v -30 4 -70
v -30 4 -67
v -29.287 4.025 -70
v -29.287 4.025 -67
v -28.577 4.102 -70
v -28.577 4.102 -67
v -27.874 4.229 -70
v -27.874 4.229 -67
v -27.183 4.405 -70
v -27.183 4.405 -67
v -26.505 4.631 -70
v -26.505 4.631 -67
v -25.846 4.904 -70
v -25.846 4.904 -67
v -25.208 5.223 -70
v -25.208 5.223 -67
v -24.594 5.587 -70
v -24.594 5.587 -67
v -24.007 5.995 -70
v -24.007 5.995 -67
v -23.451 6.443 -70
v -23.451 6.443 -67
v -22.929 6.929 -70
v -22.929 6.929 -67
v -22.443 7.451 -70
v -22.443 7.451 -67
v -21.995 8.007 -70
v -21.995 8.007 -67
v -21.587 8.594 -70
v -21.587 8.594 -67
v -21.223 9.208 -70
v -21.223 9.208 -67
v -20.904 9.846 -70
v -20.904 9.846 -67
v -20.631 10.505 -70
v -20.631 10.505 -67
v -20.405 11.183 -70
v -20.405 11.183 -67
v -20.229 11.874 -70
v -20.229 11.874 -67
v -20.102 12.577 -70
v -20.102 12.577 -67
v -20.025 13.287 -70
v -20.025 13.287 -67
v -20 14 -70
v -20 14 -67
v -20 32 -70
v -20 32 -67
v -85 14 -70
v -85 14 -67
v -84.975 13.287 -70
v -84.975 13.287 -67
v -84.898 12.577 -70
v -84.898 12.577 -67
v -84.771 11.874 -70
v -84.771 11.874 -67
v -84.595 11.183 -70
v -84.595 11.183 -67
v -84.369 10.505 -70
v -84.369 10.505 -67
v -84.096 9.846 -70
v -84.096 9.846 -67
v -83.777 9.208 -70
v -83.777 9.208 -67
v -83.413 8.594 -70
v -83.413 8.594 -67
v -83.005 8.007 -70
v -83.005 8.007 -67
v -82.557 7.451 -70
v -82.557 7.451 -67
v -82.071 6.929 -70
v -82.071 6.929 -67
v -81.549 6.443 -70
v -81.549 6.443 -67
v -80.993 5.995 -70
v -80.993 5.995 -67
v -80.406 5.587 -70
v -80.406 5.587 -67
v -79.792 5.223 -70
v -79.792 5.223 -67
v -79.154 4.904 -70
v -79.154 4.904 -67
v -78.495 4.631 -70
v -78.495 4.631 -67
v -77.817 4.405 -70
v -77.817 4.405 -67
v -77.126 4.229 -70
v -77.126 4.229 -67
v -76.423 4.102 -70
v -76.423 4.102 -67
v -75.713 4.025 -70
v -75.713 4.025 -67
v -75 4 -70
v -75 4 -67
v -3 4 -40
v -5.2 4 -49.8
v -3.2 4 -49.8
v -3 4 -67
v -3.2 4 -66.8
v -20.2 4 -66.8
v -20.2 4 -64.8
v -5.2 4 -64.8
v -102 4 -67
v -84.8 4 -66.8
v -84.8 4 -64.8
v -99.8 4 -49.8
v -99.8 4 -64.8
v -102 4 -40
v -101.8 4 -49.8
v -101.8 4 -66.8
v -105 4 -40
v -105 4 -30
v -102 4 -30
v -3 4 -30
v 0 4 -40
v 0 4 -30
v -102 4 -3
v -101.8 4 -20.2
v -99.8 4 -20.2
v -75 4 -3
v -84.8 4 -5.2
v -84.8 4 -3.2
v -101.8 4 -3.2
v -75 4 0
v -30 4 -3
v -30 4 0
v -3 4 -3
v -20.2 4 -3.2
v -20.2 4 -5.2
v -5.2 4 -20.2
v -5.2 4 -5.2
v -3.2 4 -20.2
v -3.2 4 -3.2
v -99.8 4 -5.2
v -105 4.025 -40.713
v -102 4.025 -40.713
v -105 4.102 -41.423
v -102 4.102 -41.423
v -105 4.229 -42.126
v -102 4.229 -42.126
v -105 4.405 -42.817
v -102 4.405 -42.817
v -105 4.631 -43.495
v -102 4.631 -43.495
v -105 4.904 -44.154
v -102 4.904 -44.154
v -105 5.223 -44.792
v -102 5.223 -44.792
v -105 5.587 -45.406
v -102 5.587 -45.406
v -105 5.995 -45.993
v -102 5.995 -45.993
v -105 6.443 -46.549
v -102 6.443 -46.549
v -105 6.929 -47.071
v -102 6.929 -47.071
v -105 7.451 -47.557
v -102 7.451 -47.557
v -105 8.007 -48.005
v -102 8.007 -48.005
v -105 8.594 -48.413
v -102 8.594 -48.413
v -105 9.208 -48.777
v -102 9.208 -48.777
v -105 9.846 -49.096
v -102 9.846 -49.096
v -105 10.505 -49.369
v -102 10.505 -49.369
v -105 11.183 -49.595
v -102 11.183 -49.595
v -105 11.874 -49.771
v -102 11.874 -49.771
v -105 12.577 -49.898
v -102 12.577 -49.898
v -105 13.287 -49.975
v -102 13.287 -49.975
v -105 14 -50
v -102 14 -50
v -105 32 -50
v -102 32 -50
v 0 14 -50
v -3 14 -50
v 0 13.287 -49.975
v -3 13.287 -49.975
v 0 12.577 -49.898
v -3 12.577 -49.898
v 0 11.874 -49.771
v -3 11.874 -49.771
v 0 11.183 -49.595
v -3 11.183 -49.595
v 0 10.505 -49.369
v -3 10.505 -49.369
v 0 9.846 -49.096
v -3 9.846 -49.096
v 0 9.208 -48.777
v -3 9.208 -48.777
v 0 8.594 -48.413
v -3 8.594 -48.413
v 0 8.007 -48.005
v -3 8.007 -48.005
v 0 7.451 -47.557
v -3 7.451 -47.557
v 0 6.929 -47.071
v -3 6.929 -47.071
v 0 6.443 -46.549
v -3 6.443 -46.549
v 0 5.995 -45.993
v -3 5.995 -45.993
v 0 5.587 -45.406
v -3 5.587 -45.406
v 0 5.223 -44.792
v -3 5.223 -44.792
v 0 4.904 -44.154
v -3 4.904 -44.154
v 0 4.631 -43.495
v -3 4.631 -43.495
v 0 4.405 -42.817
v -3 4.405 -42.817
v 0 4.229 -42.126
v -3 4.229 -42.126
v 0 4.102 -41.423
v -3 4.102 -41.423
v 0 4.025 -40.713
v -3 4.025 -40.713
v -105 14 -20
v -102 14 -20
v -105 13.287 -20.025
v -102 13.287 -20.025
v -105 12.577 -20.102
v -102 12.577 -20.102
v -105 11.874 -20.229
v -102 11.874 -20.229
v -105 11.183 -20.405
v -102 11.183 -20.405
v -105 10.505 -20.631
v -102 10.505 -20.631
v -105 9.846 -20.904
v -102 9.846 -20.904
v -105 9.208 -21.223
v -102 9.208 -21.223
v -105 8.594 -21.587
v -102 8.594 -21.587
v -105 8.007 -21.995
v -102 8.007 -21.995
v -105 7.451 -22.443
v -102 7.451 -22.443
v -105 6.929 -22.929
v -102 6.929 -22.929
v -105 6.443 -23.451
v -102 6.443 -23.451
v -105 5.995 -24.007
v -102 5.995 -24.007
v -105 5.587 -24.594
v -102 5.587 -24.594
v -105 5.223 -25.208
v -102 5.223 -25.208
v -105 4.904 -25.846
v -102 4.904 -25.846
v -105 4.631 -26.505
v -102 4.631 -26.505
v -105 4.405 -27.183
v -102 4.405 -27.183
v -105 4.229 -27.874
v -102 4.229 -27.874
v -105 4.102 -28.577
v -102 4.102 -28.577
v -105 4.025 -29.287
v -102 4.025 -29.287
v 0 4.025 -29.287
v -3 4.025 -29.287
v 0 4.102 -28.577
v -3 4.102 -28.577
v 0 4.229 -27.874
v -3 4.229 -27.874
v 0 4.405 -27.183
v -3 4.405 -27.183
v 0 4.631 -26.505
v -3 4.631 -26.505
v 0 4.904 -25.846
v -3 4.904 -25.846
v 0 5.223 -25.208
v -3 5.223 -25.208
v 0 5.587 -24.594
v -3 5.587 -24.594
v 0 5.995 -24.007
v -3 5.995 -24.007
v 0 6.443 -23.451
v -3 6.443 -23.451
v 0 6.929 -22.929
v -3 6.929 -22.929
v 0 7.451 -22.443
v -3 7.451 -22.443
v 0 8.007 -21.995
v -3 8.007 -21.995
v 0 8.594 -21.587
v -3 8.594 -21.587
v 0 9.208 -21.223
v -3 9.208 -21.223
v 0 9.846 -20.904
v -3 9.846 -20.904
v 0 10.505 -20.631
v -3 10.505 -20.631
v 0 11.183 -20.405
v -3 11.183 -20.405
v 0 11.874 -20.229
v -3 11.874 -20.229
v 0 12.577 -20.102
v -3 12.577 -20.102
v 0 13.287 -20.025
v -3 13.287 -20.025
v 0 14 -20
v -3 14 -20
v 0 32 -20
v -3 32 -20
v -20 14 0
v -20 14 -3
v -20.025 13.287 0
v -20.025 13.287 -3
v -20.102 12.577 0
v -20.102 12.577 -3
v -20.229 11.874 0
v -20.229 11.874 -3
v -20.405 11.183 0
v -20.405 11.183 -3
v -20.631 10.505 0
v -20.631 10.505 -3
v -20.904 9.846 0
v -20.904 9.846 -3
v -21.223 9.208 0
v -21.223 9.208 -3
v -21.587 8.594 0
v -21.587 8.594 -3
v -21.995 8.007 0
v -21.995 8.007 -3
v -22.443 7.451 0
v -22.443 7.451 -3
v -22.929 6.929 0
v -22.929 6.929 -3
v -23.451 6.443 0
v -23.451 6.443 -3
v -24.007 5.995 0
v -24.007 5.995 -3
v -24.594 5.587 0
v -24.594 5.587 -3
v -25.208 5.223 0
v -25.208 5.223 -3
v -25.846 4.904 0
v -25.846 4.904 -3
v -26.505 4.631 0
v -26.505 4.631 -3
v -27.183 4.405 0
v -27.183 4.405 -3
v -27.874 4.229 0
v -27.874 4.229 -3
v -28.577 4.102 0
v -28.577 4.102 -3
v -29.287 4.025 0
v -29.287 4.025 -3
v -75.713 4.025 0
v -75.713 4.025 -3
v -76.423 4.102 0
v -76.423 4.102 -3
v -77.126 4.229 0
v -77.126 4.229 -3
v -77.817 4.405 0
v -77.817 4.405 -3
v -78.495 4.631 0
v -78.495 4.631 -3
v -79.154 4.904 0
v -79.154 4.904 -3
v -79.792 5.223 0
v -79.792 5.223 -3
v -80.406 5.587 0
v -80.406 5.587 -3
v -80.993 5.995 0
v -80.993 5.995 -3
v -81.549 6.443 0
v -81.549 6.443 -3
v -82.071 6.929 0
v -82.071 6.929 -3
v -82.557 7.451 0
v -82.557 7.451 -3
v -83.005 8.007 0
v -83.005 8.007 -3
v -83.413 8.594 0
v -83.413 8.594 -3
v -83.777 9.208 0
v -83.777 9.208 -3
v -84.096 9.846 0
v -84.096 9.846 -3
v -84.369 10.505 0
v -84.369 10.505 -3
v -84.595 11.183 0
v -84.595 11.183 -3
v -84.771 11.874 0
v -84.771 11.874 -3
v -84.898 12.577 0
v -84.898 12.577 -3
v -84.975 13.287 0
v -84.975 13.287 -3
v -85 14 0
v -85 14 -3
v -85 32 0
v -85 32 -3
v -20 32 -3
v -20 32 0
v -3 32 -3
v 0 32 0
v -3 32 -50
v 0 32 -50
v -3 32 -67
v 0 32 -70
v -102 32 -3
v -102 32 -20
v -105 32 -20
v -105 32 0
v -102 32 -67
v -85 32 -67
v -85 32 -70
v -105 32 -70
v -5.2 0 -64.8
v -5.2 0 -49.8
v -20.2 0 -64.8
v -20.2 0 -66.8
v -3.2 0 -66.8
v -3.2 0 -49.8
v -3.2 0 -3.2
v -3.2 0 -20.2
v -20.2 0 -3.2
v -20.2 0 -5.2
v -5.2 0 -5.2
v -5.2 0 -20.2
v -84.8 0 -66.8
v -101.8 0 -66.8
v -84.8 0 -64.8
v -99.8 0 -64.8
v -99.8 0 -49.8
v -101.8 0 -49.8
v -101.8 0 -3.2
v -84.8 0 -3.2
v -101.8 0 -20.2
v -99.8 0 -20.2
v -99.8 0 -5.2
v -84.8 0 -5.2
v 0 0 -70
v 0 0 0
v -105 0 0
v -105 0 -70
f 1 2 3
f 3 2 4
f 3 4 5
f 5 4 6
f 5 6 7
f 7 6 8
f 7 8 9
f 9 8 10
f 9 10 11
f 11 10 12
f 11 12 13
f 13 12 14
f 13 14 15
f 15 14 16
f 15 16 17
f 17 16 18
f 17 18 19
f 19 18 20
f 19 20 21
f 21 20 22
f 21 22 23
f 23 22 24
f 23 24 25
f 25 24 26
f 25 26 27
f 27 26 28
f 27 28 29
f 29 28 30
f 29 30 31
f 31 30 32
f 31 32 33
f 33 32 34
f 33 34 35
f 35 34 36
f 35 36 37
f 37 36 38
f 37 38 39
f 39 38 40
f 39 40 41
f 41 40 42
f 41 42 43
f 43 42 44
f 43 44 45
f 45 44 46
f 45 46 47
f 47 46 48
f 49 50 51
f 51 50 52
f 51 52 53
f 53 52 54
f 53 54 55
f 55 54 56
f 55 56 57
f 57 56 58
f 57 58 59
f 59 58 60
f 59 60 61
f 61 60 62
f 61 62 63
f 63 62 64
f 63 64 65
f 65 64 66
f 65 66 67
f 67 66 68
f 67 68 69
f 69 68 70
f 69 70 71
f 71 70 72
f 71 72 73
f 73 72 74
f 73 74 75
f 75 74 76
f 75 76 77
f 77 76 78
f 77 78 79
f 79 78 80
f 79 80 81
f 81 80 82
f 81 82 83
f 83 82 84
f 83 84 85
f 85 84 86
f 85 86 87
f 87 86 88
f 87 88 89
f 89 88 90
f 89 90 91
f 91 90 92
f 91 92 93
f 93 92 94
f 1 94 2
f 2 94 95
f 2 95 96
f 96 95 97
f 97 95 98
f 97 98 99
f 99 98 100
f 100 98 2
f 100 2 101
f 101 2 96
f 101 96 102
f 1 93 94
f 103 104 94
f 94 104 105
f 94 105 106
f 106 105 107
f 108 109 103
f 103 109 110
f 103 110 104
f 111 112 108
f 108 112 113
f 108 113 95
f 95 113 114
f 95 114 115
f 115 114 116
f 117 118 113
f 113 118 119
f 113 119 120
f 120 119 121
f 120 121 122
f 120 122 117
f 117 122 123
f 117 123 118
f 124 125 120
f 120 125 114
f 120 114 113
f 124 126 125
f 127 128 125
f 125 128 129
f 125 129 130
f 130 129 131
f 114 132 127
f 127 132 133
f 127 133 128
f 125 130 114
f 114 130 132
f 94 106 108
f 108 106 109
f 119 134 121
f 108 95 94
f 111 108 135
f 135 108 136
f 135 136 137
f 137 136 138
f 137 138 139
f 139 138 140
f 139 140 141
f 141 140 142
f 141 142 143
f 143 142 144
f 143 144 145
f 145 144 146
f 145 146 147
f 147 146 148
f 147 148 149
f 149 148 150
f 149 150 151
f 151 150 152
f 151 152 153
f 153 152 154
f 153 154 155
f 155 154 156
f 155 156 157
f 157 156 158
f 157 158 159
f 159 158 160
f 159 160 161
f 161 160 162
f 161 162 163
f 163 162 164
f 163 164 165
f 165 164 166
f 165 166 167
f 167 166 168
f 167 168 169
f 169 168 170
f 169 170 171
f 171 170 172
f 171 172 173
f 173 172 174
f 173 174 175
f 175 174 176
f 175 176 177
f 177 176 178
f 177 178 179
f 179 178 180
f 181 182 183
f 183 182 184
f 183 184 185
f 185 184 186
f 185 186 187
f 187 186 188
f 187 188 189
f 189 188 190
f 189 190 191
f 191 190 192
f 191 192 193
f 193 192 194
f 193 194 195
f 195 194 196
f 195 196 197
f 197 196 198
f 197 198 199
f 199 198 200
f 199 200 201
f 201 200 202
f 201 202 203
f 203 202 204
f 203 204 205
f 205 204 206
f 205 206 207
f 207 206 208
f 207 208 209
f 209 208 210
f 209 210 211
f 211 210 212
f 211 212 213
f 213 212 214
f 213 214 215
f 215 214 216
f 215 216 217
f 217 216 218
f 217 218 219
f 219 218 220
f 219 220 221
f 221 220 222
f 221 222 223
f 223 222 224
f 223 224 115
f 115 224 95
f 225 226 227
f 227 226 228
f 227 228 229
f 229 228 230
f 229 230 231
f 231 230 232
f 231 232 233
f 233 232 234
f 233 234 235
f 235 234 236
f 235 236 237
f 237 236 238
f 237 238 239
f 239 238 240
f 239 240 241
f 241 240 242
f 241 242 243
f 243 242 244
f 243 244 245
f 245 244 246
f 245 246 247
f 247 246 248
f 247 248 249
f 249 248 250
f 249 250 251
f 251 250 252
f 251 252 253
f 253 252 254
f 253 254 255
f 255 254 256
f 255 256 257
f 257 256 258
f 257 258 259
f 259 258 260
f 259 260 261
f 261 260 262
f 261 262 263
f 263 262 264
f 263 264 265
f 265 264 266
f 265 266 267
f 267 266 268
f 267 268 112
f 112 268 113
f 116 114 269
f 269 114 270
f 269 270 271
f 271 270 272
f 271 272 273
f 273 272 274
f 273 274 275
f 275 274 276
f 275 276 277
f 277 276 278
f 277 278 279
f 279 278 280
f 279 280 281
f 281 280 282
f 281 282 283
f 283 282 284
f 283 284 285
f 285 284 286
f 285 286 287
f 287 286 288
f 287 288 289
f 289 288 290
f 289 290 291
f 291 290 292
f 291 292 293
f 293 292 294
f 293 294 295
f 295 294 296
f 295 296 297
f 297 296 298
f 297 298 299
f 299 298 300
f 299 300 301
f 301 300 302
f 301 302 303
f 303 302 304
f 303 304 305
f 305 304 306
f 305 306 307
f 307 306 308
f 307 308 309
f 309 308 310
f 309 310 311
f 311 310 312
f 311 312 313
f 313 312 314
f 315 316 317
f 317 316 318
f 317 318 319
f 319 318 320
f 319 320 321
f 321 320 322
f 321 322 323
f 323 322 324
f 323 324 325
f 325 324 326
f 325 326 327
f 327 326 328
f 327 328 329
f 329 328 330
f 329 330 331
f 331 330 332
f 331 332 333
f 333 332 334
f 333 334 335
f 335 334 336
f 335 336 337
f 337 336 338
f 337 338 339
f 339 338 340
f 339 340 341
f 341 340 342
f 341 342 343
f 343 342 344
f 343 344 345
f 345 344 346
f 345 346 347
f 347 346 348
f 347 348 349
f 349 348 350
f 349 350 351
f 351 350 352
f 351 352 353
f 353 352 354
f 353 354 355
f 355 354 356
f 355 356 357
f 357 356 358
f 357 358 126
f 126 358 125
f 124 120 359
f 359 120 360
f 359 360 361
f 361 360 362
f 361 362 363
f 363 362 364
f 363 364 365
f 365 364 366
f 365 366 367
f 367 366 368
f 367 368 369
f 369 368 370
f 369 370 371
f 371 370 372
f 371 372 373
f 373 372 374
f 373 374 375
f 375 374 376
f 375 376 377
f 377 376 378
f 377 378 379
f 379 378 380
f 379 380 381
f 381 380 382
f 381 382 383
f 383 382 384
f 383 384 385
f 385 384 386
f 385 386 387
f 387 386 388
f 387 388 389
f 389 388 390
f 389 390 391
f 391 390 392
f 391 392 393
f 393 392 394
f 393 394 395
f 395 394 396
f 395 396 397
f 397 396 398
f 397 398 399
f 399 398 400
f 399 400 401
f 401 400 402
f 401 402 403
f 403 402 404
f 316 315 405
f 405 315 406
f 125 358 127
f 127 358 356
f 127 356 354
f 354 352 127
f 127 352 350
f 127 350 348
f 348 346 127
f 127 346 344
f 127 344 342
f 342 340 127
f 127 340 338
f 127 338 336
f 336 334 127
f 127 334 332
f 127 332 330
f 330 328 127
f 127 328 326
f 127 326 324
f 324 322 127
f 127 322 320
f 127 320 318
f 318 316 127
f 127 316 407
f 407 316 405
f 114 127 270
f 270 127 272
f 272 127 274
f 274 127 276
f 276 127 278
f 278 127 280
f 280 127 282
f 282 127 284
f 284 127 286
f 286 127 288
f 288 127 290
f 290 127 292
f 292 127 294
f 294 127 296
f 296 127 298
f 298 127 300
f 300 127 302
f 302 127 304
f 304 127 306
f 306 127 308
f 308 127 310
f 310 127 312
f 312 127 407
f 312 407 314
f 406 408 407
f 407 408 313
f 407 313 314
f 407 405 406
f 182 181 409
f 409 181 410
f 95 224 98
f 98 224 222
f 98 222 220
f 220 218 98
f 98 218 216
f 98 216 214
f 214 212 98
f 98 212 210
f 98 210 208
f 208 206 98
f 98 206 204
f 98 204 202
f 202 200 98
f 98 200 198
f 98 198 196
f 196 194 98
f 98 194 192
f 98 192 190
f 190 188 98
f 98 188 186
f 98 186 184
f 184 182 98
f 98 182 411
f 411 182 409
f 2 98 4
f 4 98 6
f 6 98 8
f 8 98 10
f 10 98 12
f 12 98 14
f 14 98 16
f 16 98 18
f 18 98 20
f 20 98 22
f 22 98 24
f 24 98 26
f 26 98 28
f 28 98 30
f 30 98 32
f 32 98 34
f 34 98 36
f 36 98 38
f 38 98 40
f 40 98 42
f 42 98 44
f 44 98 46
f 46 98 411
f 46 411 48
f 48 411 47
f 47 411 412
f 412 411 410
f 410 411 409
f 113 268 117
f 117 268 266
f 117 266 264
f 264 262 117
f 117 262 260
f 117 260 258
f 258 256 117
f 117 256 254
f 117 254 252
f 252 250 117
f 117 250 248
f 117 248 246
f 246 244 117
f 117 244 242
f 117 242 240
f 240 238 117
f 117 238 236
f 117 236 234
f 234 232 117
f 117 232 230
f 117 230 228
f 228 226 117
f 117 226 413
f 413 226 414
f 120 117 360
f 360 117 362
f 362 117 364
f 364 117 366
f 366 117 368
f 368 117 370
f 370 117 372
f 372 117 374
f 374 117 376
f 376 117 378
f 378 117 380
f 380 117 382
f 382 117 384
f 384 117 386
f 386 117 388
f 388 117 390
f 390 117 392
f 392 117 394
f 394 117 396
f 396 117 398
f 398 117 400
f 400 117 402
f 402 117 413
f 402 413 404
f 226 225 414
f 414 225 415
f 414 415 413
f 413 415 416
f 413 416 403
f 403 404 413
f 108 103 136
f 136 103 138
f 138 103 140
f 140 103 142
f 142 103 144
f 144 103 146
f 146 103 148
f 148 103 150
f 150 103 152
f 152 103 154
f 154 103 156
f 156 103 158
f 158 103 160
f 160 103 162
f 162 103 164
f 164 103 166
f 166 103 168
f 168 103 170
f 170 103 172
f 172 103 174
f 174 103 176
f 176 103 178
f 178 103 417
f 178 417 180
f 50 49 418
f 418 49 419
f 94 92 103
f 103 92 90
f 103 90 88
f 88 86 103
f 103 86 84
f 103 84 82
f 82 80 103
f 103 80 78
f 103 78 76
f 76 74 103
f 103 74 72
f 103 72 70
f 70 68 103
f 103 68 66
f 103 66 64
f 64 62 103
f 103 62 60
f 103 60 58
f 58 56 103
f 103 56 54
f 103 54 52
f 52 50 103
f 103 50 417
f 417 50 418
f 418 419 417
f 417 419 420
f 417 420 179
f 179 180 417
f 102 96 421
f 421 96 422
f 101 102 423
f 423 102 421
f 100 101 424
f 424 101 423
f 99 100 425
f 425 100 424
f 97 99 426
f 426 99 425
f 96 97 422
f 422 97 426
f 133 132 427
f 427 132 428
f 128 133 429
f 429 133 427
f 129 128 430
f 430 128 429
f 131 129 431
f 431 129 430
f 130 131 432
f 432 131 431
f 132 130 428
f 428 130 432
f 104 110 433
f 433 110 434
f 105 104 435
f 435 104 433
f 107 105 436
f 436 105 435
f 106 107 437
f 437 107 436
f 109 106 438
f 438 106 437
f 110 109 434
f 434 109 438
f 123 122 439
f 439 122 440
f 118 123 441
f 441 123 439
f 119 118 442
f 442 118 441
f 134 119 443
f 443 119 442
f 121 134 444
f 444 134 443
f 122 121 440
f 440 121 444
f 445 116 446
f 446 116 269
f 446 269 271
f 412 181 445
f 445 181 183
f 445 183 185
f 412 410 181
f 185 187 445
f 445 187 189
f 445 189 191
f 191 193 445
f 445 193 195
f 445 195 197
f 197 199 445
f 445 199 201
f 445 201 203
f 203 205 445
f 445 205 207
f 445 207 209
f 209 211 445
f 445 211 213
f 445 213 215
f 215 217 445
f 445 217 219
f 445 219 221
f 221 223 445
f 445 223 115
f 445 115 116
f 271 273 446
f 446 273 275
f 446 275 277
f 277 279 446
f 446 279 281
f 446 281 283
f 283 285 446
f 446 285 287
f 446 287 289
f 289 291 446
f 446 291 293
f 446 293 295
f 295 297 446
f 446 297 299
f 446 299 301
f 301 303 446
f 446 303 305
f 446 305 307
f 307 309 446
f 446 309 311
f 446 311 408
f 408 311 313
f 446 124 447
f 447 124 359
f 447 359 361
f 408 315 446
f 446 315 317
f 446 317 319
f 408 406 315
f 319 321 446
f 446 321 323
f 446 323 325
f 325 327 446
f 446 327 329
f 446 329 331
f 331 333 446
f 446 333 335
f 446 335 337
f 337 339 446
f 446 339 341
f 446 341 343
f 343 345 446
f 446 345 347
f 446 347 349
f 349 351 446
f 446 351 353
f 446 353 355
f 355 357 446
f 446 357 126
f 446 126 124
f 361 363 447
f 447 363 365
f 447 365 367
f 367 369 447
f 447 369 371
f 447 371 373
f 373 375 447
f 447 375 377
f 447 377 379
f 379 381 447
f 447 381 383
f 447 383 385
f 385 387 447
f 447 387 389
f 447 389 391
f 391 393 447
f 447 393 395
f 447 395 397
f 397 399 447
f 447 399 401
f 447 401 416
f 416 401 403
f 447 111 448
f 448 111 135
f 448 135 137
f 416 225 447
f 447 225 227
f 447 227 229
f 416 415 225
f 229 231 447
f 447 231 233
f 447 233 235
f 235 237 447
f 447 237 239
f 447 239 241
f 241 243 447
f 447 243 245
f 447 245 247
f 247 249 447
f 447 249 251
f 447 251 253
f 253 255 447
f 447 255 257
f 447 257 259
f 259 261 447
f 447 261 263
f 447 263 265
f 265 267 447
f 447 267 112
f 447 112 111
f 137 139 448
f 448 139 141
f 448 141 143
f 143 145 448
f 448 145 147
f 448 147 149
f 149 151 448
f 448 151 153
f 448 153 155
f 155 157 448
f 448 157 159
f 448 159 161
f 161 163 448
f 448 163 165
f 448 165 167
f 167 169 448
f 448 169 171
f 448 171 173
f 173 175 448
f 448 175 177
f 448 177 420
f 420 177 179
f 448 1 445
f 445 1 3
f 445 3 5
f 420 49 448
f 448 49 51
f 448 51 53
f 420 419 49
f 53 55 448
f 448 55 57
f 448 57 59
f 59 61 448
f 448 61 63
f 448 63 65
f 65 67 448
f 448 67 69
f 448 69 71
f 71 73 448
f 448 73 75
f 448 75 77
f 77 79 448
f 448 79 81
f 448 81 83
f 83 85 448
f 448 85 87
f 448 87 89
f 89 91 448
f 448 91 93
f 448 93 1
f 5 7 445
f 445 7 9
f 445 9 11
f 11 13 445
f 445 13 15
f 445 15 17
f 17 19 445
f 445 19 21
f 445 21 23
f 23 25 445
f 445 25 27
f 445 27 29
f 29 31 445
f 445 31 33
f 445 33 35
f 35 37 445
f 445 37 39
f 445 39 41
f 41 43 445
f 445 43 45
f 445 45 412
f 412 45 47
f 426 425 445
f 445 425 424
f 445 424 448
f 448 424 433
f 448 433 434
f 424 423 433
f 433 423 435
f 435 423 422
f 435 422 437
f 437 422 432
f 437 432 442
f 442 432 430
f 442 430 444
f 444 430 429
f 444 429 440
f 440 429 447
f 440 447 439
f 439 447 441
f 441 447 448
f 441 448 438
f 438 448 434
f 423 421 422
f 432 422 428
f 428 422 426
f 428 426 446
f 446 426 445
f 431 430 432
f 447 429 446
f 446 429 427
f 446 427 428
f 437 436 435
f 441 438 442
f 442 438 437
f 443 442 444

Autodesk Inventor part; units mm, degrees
ref_plane "YZ Plane" through (0, 0, 0) normal (1, 0, 0) x (0, 1, 0)
ref_plane "XZ Plane" through (0, 0, 0) normal (0, 1, 0) x (-1, 0, 0)
ref_plane "XY Plane" through (0, 0, 0) normal (0, 0, 1) x (1, 0, 0)
sketch "Sketch1" plane through (0, 0, 0) normal (0, 1, 0) x (-1, 0, 0)
  line L0 (0, 0) -> (105, 0)
  line L1 (105, 0) -> (105, -70)
  line L2 (105, -70) -> (0, -70)
  line L3 (0, -70) -> (0, 0)
  dimension "d0" = 105
  dimension "d1" = 70
extrude "Extrusion1" add sketch "Sketch1" along normal blind 4
sketch "Sketch2" plane through (0, 0, 0) normal (0, -1, 0) x (1, 0, 0)
  line L0 (-101.8, -3.2) -> (-84.8, -3.2)
  line L1 (-84.8, -3.2) -> (-84.8, -5.2)
  line L2 (-84.8, -5.2) -> (-99.8, -5.2)
  line L3 (-99.8, -5.2) -> (-99.8, -20.2)
  line L4 (-99.8, -20.2) -> (-101.8, -20.2)
  line L5 (-101.8, -20.2) -> (-101.8, -3.2)
  line L6 (-105, 0) -> (0, 0) projected
  line L7 (-105, -70) -> (-105, 0) projected
  line L8 (-52.5, 13.4533) -> (-52.5, -78.582) construction
  line L9 (-116.2226, -35) -> (14.8802, -35) construction
  line L10 (-3.2, -3.2) -> (-20.2, -3.2)
  line L11 (-20.2, -3.2) -> (-20.2, -5.2)
  line L12 (-20.2, -5.2) -> (-5.2, -5.2)
  line L13 (-5.2, -5.2) -> (-5.2, -20.2)
  line L14 (-5.2, -20.2) -> (-3.2, -20.2)
  line L15 (-3.2, -20.2) -> (-3.2, -3.2)
  line L16 (-101.8, -66.8) -> (-84.8, -66.8)
  line L17 (-84.8, -66.8) -> (-84.8, -64.8)
  line L18 (-84.8, -64.8) -> (-99.8, -64.8)
  line L19 (-99.8, -64.8) -> (-99.8, -49.8)
  line L20 (-99.8, -49.8) -> (-101.8, -49.8)
  line L21 (-101.8, -49.8) -> (-101.8, -66.8)
  line L22 (-3.2, -66.8) -> (-20.2, -66.8)
  line L23 (-3.2, -49.8) -> (-3.2, -66.8)
  line L24 (-5.2, -49.8) -> (-3.2, -49.8)
  line L25 (-5.2, -64.8) -> (-5.2, -49.8)
  line L26 (-20.2, -64.8) -> (-5.2, -64.8)
  line L27 (-20.2, -66.8) -> (-20.2, -64.8)
  dimension "d4" = 17
  dimension "d5" = 2
  dimension "d6" = 17
  dimension "d7" = 2
  dimension "d8" = 3.2
  dimension "d9" = 3.2
  dimension "d10" = 52.5
  dimension "d11" = 35
extrude "Extrusion2" cut sketch "Sketch2" against normal through all
sketch "Sketch3" plane through (0, 4, 0) normal (0, 1, 0) x (1, 0, 0)
  line L0 (-105, 70) -> (-105, 0) projected
  line L1 (-105, 70) -> (-105, 50)
  line L2 (-105, 50) -> (-102, 50)
  line L3 (-105, 70) -> (-85, 70)
  line L4 (0, 70) -> (-105, 70) projected
  line L5 (-85, 70) -> (-85, 67)
  line L6 (-85, 67) -> (-102, 67)
  line L7 (-102, 67) -> (-102, 50)
  line L8 (-52.5, 99.9312) -> (-52.5, -17.7346) construction
  line L9 (-124.2156, 35) -> (28.5486, 35) construction
  line L10 (0, 70) -> (0, 50)
  line L11 (0, 50) -> (-3, 50)
  line L12 (0, 70) -> (-20, 70)
  line L13 (-20, 70) -> (-20, 67)
  line L14 (-20, 67) -> (-3, 67)
  line L15 (-3, 67) -> (-3, 50)
  line L16 (19.2156, 35) -> (-133.5486, 35) construction
  line L17 (-105, 0) -> (-105, 20)
  line L18 (-105, 20) -> (-102, 20)
  line L19 (-105, 0) -> (-85, 0)
  line L20 (-85, 0) -> (-85, 3)
  line L21 (-85, 3) -> (-102, 3)
  line L22 (-102, 3) -> (-102, 20)
  line L23 (-52.5, -29.9312) -> (-52.5, 87.7346) construction
  line L24 (0, 0) -> (0, 20)
  line L25 (0, 20) -> (-3, 20)
  line L26 (0, 0) -> (-20, 0)
  line L27 (-20, 0) -> (-20, 3)
  line L28 (-20, 3) -> (-3, 3)
  line L29 (-3, 3) -> (-3, 20)
  point P0 (-105, 20)
  point P1 (-20, 70)
  point P2 (0.75, 3)
  point P3 (2, 8)
  point P4 (2, 62)
  point P5 (0.75, 67)
  dimension "d15" = 20
  dimension "d16" = 3
  dimension "d17" = 20
  dimension "d18" = 3
  dimension "d19" = 52.5
  dimension "d20" = 35
extrude "Extrusion3" add sketch "Sketch3" along normal blind 28
fillet "Fillet2" radius 10 8 edges at (-85, 4, -1.5) (-20, 4, -1.5) (-1.5, 4, -20) (-103.5, 4, -20) (-1.5, 4, -50) (-103.5, 4, -50) (-85, 4, -68.5) (-20, 4, -68.5)
properties part number "TestingPlatform_standardStack01"
